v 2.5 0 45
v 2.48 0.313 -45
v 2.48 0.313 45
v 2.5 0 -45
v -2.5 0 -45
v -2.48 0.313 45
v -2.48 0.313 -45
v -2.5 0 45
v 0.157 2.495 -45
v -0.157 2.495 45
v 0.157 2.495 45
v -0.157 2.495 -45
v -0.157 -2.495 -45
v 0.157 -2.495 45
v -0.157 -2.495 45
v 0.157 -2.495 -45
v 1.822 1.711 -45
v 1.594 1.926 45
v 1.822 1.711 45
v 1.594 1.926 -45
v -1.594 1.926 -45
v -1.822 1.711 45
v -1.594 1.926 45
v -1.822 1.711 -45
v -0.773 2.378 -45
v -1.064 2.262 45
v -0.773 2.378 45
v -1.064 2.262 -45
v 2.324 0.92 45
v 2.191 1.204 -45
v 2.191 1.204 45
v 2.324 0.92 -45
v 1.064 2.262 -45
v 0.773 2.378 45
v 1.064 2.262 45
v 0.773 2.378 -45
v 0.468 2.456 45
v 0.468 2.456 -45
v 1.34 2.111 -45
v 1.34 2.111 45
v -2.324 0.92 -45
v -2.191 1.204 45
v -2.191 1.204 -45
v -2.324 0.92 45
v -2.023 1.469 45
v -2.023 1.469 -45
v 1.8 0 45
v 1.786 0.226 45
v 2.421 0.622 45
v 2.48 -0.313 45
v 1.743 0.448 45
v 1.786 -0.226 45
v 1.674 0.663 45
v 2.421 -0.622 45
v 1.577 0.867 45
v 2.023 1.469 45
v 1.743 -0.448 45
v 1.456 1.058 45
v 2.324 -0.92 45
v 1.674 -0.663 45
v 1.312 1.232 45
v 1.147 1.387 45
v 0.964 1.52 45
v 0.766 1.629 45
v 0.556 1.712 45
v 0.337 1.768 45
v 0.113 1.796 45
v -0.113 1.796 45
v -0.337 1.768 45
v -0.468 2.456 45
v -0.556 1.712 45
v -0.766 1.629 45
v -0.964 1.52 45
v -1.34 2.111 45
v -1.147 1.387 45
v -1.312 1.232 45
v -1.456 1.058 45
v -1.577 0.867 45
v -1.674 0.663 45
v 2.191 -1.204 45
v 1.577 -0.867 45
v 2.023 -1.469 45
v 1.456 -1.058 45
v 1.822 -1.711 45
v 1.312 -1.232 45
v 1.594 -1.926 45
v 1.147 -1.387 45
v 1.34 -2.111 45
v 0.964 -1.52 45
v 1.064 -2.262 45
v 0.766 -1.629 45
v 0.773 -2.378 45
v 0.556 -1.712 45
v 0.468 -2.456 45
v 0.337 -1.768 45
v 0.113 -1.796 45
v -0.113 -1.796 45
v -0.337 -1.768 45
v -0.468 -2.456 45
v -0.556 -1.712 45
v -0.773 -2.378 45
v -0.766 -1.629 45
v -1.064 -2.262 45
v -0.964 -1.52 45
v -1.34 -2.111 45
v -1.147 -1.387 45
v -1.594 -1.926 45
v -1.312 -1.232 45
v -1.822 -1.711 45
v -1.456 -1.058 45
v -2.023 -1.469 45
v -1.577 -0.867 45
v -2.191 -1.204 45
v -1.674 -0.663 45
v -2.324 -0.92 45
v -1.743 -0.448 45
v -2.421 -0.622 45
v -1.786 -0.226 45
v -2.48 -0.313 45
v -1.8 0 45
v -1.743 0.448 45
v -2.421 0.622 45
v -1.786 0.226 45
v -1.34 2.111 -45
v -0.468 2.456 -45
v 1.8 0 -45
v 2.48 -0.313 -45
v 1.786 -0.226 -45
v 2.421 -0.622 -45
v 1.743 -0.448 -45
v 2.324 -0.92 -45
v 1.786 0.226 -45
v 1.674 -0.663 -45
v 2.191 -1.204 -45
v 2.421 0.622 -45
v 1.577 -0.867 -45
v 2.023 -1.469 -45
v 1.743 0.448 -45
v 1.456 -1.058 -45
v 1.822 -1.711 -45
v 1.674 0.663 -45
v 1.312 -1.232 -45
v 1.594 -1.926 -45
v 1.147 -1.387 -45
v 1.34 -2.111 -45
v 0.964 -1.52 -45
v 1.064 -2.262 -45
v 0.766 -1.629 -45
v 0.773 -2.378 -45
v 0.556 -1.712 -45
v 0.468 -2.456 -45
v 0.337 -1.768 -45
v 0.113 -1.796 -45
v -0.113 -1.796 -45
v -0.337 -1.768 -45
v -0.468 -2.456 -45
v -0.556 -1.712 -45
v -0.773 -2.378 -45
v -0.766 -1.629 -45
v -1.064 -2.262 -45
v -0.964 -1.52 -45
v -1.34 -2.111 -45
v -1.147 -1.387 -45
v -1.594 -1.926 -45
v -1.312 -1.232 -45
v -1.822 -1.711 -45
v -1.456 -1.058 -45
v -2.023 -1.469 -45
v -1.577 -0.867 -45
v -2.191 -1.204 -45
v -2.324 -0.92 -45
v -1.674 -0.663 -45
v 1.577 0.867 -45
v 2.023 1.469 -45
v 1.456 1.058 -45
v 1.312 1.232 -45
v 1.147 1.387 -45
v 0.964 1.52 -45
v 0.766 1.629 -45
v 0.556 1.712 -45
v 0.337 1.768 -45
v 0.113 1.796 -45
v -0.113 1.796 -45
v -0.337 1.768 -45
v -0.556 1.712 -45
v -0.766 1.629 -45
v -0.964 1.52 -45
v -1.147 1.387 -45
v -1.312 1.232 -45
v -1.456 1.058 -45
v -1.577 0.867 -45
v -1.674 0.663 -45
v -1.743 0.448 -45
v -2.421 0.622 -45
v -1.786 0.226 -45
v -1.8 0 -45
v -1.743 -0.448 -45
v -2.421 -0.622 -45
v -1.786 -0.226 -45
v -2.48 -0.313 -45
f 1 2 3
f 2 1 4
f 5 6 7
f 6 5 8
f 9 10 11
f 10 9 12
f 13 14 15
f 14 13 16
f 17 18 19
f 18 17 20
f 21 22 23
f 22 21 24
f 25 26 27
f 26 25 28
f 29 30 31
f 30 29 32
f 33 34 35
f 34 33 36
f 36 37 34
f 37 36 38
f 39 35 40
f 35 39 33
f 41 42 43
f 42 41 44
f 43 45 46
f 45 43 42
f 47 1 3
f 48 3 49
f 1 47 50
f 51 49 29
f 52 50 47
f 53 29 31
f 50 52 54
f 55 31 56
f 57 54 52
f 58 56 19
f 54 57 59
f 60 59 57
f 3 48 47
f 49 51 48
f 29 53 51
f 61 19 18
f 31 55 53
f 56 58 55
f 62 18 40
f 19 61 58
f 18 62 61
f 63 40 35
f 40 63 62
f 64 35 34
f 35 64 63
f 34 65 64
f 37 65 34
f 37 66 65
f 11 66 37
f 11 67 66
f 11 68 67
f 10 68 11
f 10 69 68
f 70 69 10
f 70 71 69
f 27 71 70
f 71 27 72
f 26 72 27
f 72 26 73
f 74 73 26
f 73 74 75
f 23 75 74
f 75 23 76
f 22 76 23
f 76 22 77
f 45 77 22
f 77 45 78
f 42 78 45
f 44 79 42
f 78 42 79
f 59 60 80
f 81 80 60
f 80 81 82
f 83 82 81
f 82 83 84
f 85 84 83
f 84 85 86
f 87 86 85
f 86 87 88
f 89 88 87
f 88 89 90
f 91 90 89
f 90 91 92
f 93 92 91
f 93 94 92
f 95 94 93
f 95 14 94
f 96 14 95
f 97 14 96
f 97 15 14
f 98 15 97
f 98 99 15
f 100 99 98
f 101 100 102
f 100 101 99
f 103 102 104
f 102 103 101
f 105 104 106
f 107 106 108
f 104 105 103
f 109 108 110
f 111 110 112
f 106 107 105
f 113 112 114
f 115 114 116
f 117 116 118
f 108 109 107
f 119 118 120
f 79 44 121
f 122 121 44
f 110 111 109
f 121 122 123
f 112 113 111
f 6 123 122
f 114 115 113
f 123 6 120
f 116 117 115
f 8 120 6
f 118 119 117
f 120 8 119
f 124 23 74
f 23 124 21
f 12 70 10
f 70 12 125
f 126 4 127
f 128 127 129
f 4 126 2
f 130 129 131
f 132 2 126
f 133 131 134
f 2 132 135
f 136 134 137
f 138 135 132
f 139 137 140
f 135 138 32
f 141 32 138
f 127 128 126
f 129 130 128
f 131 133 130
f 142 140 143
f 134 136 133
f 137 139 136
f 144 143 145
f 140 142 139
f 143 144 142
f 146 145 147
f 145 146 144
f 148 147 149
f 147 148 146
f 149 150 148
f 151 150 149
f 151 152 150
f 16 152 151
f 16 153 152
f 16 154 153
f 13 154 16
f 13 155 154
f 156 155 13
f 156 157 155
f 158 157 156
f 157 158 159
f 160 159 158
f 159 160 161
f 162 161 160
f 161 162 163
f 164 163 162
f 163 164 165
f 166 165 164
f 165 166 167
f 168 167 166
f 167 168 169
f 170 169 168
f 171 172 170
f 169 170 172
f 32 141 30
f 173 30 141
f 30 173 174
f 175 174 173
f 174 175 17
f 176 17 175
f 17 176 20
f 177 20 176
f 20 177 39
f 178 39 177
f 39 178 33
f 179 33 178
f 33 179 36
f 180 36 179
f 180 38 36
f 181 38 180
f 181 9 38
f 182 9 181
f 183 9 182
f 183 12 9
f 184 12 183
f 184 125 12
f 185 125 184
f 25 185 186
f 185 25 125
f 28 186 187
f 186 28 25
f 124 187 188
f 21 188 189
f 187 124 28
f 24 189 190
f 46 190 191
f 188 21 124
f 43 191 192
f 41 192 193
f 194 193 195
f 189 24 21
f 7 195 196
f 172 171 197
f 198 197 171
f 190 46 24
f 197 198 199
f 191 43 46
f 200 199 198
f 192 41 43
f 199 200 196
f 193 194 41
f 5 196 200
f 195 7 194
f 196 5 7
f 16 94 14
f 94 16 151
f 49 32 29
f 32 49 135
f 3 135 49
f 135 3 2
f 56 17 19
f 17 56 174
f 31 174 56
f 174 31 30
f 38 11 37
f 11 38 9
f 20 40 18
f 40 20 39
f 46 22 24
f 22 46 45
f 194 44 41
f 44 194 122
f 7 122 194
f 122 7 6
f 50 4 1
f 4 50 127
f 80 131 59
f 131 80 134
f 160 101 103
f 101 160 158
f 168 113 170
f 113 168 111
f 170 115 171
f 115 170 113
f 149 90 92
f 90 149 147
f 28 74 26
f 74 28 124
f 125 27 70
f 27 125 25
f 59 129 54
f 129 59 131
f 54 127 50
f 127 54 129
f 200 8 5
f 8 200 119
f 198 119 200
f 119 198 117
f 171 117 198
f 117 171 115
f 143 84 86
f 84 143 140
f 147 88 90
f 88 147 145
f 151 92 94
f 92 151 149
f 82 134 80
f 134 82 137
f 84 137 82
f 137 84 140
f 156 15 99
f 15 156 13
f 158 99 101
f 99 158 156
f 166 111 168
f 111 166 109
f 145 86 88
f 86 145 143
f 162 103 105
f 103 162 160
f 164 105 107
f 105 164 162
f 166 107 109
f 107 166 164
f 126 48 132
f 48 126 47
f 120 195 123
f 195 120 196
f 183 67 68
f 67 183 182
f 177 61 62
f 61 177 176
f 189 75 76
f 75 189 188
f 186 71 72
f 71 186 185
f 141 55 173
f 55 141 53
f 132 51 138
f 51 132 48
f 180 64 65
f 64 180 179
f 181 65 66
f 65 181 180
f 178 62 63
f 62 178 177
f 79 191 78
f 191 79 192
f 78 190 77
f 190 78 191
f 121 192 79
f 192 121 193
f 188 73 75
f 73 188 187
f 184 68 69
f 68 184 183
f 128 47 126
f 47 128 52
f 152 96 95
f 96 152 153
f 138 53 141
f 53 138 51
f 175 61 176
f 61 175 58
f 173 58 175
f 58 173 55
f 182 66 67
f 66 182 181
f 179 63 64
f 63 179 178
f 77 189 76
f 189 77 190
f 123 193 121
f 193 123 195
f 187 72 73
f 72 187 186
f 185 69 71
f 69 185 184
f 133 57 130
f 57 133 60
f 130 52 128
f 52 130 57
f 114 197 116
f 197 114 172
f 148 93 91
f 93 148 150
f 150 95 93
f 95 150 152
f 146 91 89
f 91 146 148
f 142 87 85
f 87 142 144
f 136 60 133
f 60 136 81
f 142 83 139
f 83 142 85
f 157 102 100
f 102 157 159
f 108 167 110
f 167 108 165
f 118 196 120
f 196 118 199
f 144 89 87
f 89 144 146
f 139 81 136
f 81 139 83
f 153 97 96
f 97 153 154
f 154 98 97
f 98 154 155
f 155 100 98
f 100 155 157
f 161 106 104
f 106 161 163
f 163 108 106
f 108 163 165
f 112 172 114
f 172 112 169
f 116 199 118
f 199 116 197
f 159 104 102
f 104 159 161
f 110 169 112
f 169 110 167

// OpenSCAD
$fn = 50;


difference() {
	union() {
		translate(v = [0, 0, -45.0000000000]) {
			cylinder(h = 90, r = 2.5000000000);
		}
	}
	union() {
		translate(v = [0, 0, -100.0000000000]) {
			cylinder(h = 200, r = 1.8000000000);
		}
	}
}
